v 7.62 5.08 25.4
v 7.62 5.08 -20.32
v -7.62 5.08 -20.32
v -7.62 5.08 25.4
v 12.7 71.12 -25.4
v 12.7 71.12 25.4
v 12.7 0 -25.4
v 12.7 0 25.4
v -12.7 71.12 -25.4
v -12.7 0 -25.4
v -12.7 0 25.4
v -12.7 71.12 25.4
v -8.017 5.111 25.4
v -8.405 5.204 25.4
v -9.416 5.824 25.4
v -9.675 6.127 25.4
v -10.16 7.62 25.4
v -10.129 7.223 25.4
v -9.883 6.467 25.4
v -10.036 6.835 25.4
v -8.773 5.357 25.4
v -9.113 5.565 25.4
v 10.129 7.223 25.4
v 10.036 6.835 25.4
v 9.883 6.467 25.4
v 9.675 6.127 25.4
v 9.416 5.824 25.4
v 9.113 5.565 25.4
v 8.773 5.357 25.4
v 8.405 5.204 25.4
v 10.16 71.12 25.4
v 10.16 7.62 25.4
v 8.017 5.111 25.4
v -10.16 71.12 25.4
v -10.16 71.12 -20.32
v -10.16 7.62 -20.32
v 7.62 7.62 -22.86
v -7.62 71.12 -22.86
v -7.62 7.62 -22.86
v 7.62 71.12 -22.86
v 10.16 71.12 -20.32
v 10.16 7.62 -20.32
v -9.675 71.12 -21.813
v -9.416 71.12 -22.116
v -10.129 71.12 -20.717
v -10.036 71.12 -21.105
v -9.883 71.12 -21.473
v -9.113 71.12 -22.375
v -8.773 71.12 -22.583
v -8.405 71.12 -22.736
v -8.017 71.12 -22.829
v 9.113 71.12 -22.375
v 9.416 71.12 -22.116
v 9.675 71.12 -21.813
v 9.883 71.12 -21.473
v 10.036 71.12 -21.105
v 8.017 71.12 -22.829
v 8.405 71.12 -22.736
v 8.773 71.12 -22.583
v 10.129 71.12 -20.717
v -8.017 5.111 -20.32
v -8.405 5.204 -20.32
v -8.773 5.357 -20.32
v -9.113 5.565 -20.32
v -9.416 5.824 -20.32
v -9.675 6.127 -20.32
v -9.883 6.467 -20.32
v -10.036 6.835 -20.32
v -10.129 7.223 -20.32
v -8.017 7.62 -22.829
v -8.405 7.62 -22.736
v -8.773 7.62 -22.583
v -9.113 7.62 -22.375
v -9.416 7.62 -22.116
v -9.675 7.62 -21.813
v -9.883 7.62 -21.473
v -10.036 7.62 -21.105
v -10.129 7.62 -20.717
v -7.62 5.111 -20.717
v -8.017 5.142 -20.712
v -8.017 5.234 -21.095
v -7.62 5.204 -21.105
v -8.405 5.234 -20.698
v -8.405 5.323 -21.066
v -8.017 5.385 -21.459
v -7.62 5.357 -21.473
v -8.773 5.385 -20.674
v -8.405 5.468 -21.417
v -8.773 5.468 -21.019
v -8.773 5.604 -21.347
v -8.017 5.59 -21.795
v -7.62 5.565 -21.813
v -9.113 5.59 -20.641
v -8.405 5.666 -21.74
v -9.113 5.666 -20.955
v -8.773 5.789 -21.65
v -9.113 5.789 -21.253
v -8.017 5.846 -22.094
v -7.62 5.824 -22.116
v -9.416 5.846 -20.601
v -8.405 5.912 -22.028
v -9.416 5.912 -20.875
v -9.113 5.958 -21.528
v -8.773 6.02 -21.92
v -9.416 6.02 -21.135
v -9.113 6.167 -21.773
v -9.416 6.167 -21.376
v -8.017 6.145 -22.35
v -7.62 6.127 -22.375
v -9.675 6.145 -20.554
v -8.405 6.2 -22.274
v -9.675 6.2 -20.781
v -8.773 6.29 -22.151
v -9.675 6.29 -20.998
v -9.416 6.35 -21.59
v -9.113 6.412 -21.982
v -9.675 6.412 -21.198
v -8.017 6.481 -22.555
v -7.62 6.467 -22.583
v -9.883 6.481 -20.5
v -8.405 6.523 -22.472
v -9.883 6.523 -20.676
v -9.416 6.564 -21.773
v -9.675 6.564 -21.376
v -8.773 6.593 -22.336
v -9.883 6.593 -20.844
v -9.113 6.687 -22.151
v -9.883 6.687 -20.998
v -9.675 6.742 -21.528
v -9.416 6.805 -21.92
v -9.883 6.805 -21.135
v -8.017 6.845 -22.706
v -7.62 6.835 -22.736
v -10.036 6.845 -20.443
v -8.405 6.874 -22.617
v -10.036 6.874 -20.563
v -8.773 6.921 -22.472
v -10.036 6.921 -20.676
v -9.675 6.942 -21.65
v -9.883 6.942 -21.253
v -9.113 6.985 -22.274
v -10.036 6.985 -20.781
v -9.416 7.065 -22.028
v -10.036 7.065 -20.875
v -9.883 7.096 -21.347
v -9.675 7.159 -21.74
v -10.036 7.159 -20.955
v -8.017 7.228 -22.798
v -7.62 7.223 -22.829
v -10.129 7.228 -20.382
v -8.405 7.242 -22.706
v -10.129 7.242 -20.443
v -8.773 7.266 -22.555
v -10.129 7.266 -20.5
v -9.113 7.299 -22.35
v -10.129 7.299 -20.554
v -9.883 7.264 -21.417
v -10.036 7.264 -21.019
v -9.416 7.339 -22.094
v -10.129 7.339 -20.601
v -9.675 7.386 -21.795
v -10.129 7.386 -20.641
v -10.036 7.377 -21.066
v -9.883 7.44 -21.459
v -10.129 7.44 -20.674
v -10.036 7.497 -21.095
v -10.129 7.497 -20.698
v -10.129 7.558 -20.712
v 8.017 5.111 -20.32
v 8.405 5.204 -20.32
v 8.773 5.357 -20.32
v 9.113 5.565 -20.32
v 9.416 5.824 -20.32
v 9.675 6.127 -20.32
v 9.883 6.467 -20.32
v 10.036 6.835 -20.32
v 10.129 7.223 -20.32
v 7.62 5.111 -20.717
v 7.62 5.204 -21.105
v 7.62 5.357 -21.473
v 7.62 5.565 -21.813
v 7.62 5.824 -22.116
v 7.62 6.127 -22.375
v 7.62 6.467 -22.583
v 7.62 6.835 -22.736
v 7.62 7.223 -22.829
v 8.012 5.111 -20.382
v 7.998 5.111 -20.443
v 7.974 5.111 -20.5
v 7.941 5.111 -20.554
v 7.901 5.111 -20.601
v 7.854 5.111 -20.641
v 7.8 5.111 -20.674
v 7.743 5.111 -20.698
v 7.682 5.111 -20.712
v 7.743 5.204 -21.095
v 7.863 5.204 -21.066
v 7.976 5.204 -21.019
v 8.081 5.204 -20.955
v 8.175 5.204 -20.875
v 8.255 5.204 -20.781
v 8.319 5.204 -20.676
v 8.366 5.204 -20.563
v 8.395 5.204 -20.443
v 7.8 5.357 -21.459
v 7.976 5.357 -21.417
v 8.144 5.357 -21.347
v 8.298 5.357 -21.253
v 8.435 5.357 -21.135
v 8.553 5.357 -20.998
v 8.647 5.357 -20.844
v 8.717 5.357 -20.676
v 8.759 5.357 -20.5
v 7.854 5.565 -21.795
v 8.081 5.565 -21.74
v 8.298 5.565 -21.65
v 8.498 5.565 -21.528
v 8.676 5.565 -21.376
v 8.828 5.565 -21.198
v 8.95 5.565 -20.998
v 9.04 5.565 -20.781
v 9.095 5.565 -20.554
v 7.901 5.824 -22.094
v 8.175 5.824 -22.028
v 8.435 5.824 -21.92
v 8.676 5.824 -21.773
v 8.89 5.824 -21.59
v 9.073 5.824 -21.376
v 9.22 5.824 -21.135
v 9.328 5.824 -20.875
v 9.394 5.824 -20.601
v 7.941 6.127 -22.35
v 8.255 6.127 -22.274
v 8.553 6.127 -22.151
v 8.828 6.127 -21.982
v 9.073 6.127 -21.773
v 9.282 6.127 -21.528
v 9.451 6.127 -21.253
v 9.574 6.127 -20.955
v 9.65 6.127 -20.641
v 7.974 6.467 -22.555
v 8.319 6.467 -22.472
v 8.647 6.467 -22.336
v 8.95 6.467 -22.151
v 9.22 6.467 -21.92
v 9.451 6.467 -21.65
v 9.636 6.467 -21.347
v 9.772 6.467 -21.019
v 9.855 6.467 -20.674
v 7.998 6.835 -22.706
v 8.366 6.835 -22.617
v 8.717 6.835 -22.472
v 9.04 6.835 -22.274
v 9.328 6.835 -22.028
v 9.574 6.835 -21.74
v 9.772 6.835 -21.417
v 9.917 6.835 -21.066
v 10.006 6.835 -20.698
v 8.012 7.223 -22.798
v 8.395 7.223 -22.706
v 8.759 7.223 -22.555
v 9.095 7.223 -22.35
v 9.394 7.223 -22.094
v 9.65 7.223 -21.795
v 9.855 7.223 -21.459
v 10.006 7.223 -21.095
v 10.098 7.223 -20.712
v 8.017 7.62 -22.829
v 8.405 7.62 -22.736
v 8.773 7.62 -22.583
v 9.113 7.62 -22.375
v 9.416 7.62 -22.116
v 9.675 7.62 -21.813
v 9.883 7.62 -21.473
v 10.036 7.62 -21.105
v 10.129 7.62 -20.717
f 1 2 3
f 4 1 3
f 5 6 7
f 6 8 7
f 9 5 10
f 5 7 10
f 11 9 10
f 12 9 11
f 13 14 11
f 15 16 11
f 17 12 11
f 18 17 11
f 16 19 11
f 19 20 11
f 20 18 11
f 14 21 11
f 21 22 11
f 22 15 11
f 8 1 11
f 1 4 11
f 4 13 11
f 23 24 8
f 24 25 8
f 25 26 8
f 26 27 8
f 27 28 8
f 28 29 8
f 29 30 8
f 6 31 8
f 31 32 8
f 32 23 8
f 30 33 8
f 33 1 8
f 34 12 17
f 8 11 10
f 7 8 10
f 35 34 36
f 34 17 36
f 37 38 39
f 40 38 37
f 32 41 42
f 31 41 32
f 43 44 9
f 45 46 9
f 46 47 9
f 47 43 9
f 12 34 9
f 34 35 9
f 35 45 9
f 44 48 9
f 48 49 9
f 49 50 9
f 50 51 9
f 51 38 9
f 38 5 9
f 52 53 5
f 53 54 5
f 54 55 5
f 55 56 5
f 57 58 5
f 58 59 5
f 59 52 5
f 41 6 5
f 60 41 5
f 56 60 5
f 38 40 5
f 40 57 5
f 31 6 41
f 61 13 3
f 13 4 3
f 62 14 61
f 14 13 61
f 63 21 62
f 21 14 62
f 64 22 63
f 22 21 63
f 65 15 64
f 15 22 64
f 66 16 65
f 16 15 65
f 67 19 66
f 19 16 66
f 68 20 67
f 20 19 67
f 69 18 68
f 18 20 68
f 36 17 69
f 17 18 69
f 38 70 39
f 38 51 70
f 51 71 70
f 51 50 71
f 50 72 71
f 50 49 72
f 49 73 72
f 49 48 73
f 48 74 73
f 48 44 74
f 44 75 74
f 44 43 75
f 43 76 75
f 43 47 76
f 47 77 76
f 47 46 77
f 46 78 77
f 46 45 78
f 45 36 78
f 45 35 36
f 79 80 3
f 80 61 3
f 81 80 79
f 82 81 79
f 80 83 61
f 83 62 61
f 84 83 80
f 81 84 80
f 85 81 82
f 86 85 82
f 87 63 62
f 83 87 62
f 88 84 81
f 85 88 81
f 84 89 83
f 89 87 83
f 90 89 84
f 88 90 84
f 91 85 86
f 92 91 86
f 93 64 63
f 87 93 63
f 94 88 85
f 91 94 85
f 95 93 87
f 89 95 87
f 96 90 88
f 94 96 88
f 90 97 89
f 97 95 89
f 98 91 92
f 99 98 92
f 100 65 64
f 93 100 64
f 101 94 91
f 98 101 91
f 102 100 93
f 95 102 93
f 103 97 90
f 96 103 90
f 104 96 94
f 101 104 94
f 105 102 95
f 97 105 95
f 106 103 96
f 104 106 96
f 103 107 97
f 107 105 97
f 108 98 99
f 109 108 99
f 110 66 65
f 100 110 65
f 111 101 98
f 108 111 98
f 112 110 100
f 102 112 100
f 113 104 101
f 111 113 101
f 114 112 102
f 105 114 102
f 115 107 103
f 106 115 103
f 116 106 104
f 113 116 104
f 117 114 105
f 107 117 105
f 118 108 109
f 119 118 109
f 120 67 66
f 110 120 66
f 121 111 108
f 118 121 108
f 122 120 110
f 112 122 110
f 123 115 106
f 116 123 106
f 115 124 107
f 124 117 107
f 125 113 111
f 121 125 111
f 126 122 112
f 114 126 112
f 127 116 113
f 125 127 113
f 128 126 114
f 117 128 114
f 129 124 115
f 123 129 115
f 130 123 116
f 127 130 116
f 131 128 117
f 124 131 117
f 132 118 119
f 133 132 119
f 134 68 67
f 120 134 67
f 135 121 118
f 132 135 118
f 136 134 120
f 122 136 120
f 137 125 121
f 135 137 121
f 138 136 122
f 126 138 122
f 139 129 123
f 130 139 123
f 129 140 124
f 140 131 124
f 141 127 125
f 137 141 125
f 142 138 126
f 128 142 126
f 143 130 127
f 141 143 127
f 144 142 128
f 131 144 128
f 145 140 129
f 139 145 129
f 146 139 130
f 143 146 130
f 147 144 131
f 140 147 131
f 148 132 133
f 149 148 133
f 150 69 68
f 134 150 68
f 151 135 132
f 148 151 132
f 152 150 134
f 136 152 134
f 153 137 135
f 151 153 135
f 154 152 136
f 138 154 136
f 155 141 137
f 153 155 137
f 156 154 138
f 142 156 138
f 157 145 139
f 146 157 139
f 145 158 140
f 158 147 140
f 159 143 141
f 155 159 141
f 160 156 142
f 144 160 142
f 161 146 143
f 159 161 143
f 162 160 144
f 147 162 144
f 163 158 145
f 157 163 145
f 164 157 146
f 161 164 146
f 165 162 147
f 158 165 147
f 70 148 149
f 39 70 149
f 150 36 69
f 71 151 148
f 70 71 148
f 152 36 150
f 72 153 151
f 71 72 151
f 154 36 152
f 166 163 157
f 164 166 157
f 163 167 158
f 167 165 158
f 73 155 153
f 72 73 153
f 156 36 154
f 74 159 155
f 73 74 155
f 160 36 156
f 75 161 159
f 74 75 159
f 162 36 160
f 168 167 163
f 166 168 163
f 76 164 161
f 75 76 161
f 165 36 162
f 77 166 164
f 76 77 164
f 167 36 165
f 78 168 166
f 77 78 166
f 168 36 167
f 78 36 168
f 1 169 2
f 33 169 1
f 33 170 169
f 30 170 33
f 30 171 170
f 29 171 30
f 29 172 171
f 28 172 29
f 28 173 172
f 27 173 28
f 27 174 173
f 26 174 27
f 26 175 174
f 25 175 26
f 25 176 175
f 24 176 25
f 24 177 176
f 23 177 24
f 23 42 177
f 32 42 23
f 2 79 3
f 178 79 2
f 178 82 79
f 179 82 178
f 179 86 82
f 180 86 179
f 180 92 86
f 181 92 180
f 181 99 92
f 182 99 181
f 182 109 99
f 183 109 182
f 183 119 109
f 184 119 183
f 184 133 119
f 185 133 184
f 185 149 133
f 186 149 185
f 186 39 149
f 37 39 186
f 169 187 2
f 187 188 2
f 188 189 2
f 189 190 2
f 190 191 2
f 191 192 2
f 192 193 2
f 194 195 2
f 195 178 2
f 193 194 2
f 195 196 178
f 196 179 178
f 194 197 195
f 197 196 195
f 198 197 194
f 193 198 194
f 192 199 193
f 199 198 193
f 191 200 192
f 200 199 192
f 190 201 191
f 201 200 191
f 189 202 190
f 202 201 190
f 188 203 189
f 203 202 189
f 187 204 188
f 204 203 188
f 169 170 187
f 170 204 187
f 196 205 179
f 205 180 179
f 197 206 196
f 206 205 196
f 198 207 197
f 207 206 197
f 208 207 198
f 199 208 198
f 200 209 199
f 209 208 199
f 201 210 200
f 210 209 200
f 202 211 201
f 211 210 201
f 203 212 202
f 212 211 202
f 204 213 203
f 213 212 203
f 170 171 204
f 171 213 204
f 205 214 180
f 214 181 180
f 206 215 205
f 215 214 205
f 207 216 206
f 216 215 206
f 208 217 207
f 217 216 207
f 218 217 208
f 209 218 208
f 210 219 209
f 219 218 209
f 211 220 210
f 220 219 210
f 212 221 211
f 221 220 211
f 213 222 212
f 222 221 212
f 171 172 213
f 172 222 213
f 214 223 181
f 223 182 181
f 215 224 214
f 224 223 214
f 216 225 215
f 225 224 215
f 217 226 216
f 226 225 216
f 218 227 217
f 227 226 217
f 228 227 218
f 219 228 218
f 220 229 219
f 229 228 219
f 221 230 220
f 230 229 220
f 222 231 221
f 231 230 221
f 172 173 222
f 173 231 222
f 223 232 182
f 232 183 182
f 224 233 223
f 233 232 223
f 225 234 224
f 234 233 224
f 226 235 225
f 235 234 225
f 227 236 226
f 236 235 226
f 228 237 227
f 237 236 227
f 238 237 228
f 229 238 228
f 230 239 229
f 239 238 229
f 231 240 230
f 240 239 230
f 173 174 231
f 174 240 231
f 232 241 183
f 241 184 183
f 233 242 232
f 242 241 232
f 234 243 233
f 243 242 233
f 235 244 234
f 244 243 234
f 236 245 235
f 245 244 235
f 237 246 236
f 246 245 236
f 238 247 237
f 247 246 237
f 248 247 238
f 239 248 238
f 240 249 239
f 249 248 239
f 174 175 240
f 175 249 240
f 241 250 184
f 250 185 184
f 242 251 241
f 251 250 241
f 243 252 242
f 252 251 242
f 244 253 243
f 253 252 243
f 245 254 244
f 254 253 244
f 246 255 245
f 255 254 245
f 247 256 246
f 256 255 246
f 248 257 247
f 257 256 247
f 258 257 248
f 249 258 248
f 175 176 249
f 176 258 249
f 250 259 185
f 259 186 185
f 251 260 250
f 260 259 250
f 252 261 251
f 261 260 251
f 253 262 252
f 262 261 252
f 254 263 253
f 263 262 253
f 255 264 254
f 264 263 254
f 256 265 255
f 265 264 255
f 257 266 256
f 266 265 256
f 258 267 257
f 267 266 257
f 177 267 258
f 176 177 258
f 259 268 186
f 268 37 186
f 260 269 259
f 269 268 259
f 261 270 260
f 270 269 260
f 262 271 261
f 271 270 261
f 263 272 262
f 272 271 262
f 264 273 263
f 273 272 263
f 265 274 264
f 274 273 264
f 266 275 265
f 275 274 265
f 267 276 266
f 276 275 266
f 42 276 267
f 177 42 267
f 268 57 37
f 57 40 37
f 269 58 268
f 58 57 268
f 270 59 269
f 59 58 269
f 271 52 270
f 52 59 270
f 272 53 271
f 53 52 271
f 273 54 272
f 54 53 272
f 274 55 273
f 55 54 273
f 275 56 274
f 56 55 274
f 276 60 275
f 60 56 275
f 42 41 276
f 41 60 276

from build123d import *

# Parameters (mm, degrees)
SKETCH1_W           = 25.4
SKETCH1_H           = 50.8
BOSS_EXTRUDE1_DEPTH = 5.08
BOSS_EXTRUDE2_DEPTH = 66.04
FILLET1_R           = 2.54


with BuildPart() as part:
    # Sketch1 → Boss-Extrude1 (new body)
    with BuildSketch(Plane(origin=(0, 0, 0), x_dir=(1, 0, 0), z_dir=(0, 1, 0))):
        Rectangle(SKETCH1_W, SKETCH1_H)
    extrude(amount=BOSS_EXTRUDE1_DEPTH)

    # Sketch2 → Boss-Extrude2 (add)
    with BuildSketch(Plane(origin=(0, 5.08, 0), x_dir=(1, 0, 0), z_dir=(0, 1, 0))):
        Polygon((-12.7, -25.4), (-12.7, 25.4), (12.7, 25.4), (12.7, -25.4), (10.16, -25.4), (10.16, 22.86), (-10.16, 22.86), (-10.16, -25.4), align=None)
    extrude(amount=BOSS_EXTRUDE2_DEPTH)

    # Fillet1
    fillet1_edges = [part.edges().sort_by_distance(p)[0] for p in [
        (-10.16, 5.08, 1.27),
        (0, 5.08, -22.86),
        (-10.16, 38.1, -22.86),
        (10.16, 5.08, 1.27),
        (10.16, 38.1, -22.86),
    ]]
    fillet(fillet1_edges, radius=FILLET1_R)


solid = part.part
